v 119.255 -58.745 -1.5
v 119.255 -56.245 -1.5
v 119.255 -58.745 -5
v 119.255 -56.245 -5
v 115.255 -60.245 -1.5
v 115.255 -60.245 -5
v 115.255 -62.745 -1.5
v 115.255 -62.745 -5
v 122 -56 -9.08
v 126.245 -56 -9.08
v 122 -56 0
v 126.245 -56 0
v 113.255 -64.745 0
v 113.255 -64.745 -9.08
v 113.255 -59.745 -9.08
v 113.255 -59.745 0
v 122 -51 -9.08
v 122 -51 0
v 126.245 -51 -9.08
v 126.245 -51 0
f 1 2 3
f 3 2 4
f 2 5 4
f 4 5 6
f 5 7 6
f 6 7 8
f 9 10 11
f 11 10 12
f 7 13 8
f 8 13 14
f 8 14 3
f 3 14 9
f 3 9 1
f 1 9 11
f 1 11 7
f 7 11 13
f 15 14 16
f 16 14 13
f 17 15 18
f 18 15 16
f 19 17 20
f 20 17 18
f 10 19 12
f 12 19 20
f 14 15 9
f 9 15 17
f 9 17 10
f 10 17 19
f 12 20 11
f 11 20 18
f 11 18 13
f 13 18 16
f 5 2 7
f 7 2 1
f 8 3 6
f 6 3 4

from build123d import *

# Parameters (mm, degrees)
SALIENTE_EXTRUIR1_DEPTH = 9.08
SALIENTE_EXTRUIR4_DEPTH = 1.5
SALIENTE_EXTRUIR5_DEPTH = 4.08


with BuildPart() as part:
    # Croquis1 → Saliente-Extruir1 (new body)
    with BuildSketch(Plane.XY):
        Polygon((126.24514053, -55.999935), (126.24514053, -50.999935), (121.99984, -50.999935), (113.25453947, -59.74523553), (113.25453947, -64.74523553), (115.25453947, -62.74523553), (115.25453947, -60.24523553), (119.25453947, -56.24523553), (119.25453947, -58.74523553), (121.99984, -55.999935), align=None)
    extrude(amount=-SALIENTE_EXTRUIR1_DEPTH)

    # Croquis4 → Saliente-Extruir4 (add)
    with BuildSketch(Plane.XY):
        Polygon((115.25453947, -60.24523553), (115.25453947, -62.74523553), (119.25453947, -58.74523553), (119.25453947, -56.24523553), align=None)
    extrude(amount=-SALIENTE_EXTRUIR4_DEPTH)

    # Croquis5 → Saliente-Extruir5 (add)
    with BuildSketch(Plane(origin=(0, 0, -9.08), x_dir=(-1, 0, 0), z_dir=(0, 0, -1))):
        Polygon((-115.25453947, -60.24523553), (-115.25453947, -62.74523553), (-119.25453947, -58.74523553), (-119.25453947, -56.24523553), align=None)
    extrude(amount=-SALIENTE_EXTRUIR5_DEPTH)


solid = part.part
